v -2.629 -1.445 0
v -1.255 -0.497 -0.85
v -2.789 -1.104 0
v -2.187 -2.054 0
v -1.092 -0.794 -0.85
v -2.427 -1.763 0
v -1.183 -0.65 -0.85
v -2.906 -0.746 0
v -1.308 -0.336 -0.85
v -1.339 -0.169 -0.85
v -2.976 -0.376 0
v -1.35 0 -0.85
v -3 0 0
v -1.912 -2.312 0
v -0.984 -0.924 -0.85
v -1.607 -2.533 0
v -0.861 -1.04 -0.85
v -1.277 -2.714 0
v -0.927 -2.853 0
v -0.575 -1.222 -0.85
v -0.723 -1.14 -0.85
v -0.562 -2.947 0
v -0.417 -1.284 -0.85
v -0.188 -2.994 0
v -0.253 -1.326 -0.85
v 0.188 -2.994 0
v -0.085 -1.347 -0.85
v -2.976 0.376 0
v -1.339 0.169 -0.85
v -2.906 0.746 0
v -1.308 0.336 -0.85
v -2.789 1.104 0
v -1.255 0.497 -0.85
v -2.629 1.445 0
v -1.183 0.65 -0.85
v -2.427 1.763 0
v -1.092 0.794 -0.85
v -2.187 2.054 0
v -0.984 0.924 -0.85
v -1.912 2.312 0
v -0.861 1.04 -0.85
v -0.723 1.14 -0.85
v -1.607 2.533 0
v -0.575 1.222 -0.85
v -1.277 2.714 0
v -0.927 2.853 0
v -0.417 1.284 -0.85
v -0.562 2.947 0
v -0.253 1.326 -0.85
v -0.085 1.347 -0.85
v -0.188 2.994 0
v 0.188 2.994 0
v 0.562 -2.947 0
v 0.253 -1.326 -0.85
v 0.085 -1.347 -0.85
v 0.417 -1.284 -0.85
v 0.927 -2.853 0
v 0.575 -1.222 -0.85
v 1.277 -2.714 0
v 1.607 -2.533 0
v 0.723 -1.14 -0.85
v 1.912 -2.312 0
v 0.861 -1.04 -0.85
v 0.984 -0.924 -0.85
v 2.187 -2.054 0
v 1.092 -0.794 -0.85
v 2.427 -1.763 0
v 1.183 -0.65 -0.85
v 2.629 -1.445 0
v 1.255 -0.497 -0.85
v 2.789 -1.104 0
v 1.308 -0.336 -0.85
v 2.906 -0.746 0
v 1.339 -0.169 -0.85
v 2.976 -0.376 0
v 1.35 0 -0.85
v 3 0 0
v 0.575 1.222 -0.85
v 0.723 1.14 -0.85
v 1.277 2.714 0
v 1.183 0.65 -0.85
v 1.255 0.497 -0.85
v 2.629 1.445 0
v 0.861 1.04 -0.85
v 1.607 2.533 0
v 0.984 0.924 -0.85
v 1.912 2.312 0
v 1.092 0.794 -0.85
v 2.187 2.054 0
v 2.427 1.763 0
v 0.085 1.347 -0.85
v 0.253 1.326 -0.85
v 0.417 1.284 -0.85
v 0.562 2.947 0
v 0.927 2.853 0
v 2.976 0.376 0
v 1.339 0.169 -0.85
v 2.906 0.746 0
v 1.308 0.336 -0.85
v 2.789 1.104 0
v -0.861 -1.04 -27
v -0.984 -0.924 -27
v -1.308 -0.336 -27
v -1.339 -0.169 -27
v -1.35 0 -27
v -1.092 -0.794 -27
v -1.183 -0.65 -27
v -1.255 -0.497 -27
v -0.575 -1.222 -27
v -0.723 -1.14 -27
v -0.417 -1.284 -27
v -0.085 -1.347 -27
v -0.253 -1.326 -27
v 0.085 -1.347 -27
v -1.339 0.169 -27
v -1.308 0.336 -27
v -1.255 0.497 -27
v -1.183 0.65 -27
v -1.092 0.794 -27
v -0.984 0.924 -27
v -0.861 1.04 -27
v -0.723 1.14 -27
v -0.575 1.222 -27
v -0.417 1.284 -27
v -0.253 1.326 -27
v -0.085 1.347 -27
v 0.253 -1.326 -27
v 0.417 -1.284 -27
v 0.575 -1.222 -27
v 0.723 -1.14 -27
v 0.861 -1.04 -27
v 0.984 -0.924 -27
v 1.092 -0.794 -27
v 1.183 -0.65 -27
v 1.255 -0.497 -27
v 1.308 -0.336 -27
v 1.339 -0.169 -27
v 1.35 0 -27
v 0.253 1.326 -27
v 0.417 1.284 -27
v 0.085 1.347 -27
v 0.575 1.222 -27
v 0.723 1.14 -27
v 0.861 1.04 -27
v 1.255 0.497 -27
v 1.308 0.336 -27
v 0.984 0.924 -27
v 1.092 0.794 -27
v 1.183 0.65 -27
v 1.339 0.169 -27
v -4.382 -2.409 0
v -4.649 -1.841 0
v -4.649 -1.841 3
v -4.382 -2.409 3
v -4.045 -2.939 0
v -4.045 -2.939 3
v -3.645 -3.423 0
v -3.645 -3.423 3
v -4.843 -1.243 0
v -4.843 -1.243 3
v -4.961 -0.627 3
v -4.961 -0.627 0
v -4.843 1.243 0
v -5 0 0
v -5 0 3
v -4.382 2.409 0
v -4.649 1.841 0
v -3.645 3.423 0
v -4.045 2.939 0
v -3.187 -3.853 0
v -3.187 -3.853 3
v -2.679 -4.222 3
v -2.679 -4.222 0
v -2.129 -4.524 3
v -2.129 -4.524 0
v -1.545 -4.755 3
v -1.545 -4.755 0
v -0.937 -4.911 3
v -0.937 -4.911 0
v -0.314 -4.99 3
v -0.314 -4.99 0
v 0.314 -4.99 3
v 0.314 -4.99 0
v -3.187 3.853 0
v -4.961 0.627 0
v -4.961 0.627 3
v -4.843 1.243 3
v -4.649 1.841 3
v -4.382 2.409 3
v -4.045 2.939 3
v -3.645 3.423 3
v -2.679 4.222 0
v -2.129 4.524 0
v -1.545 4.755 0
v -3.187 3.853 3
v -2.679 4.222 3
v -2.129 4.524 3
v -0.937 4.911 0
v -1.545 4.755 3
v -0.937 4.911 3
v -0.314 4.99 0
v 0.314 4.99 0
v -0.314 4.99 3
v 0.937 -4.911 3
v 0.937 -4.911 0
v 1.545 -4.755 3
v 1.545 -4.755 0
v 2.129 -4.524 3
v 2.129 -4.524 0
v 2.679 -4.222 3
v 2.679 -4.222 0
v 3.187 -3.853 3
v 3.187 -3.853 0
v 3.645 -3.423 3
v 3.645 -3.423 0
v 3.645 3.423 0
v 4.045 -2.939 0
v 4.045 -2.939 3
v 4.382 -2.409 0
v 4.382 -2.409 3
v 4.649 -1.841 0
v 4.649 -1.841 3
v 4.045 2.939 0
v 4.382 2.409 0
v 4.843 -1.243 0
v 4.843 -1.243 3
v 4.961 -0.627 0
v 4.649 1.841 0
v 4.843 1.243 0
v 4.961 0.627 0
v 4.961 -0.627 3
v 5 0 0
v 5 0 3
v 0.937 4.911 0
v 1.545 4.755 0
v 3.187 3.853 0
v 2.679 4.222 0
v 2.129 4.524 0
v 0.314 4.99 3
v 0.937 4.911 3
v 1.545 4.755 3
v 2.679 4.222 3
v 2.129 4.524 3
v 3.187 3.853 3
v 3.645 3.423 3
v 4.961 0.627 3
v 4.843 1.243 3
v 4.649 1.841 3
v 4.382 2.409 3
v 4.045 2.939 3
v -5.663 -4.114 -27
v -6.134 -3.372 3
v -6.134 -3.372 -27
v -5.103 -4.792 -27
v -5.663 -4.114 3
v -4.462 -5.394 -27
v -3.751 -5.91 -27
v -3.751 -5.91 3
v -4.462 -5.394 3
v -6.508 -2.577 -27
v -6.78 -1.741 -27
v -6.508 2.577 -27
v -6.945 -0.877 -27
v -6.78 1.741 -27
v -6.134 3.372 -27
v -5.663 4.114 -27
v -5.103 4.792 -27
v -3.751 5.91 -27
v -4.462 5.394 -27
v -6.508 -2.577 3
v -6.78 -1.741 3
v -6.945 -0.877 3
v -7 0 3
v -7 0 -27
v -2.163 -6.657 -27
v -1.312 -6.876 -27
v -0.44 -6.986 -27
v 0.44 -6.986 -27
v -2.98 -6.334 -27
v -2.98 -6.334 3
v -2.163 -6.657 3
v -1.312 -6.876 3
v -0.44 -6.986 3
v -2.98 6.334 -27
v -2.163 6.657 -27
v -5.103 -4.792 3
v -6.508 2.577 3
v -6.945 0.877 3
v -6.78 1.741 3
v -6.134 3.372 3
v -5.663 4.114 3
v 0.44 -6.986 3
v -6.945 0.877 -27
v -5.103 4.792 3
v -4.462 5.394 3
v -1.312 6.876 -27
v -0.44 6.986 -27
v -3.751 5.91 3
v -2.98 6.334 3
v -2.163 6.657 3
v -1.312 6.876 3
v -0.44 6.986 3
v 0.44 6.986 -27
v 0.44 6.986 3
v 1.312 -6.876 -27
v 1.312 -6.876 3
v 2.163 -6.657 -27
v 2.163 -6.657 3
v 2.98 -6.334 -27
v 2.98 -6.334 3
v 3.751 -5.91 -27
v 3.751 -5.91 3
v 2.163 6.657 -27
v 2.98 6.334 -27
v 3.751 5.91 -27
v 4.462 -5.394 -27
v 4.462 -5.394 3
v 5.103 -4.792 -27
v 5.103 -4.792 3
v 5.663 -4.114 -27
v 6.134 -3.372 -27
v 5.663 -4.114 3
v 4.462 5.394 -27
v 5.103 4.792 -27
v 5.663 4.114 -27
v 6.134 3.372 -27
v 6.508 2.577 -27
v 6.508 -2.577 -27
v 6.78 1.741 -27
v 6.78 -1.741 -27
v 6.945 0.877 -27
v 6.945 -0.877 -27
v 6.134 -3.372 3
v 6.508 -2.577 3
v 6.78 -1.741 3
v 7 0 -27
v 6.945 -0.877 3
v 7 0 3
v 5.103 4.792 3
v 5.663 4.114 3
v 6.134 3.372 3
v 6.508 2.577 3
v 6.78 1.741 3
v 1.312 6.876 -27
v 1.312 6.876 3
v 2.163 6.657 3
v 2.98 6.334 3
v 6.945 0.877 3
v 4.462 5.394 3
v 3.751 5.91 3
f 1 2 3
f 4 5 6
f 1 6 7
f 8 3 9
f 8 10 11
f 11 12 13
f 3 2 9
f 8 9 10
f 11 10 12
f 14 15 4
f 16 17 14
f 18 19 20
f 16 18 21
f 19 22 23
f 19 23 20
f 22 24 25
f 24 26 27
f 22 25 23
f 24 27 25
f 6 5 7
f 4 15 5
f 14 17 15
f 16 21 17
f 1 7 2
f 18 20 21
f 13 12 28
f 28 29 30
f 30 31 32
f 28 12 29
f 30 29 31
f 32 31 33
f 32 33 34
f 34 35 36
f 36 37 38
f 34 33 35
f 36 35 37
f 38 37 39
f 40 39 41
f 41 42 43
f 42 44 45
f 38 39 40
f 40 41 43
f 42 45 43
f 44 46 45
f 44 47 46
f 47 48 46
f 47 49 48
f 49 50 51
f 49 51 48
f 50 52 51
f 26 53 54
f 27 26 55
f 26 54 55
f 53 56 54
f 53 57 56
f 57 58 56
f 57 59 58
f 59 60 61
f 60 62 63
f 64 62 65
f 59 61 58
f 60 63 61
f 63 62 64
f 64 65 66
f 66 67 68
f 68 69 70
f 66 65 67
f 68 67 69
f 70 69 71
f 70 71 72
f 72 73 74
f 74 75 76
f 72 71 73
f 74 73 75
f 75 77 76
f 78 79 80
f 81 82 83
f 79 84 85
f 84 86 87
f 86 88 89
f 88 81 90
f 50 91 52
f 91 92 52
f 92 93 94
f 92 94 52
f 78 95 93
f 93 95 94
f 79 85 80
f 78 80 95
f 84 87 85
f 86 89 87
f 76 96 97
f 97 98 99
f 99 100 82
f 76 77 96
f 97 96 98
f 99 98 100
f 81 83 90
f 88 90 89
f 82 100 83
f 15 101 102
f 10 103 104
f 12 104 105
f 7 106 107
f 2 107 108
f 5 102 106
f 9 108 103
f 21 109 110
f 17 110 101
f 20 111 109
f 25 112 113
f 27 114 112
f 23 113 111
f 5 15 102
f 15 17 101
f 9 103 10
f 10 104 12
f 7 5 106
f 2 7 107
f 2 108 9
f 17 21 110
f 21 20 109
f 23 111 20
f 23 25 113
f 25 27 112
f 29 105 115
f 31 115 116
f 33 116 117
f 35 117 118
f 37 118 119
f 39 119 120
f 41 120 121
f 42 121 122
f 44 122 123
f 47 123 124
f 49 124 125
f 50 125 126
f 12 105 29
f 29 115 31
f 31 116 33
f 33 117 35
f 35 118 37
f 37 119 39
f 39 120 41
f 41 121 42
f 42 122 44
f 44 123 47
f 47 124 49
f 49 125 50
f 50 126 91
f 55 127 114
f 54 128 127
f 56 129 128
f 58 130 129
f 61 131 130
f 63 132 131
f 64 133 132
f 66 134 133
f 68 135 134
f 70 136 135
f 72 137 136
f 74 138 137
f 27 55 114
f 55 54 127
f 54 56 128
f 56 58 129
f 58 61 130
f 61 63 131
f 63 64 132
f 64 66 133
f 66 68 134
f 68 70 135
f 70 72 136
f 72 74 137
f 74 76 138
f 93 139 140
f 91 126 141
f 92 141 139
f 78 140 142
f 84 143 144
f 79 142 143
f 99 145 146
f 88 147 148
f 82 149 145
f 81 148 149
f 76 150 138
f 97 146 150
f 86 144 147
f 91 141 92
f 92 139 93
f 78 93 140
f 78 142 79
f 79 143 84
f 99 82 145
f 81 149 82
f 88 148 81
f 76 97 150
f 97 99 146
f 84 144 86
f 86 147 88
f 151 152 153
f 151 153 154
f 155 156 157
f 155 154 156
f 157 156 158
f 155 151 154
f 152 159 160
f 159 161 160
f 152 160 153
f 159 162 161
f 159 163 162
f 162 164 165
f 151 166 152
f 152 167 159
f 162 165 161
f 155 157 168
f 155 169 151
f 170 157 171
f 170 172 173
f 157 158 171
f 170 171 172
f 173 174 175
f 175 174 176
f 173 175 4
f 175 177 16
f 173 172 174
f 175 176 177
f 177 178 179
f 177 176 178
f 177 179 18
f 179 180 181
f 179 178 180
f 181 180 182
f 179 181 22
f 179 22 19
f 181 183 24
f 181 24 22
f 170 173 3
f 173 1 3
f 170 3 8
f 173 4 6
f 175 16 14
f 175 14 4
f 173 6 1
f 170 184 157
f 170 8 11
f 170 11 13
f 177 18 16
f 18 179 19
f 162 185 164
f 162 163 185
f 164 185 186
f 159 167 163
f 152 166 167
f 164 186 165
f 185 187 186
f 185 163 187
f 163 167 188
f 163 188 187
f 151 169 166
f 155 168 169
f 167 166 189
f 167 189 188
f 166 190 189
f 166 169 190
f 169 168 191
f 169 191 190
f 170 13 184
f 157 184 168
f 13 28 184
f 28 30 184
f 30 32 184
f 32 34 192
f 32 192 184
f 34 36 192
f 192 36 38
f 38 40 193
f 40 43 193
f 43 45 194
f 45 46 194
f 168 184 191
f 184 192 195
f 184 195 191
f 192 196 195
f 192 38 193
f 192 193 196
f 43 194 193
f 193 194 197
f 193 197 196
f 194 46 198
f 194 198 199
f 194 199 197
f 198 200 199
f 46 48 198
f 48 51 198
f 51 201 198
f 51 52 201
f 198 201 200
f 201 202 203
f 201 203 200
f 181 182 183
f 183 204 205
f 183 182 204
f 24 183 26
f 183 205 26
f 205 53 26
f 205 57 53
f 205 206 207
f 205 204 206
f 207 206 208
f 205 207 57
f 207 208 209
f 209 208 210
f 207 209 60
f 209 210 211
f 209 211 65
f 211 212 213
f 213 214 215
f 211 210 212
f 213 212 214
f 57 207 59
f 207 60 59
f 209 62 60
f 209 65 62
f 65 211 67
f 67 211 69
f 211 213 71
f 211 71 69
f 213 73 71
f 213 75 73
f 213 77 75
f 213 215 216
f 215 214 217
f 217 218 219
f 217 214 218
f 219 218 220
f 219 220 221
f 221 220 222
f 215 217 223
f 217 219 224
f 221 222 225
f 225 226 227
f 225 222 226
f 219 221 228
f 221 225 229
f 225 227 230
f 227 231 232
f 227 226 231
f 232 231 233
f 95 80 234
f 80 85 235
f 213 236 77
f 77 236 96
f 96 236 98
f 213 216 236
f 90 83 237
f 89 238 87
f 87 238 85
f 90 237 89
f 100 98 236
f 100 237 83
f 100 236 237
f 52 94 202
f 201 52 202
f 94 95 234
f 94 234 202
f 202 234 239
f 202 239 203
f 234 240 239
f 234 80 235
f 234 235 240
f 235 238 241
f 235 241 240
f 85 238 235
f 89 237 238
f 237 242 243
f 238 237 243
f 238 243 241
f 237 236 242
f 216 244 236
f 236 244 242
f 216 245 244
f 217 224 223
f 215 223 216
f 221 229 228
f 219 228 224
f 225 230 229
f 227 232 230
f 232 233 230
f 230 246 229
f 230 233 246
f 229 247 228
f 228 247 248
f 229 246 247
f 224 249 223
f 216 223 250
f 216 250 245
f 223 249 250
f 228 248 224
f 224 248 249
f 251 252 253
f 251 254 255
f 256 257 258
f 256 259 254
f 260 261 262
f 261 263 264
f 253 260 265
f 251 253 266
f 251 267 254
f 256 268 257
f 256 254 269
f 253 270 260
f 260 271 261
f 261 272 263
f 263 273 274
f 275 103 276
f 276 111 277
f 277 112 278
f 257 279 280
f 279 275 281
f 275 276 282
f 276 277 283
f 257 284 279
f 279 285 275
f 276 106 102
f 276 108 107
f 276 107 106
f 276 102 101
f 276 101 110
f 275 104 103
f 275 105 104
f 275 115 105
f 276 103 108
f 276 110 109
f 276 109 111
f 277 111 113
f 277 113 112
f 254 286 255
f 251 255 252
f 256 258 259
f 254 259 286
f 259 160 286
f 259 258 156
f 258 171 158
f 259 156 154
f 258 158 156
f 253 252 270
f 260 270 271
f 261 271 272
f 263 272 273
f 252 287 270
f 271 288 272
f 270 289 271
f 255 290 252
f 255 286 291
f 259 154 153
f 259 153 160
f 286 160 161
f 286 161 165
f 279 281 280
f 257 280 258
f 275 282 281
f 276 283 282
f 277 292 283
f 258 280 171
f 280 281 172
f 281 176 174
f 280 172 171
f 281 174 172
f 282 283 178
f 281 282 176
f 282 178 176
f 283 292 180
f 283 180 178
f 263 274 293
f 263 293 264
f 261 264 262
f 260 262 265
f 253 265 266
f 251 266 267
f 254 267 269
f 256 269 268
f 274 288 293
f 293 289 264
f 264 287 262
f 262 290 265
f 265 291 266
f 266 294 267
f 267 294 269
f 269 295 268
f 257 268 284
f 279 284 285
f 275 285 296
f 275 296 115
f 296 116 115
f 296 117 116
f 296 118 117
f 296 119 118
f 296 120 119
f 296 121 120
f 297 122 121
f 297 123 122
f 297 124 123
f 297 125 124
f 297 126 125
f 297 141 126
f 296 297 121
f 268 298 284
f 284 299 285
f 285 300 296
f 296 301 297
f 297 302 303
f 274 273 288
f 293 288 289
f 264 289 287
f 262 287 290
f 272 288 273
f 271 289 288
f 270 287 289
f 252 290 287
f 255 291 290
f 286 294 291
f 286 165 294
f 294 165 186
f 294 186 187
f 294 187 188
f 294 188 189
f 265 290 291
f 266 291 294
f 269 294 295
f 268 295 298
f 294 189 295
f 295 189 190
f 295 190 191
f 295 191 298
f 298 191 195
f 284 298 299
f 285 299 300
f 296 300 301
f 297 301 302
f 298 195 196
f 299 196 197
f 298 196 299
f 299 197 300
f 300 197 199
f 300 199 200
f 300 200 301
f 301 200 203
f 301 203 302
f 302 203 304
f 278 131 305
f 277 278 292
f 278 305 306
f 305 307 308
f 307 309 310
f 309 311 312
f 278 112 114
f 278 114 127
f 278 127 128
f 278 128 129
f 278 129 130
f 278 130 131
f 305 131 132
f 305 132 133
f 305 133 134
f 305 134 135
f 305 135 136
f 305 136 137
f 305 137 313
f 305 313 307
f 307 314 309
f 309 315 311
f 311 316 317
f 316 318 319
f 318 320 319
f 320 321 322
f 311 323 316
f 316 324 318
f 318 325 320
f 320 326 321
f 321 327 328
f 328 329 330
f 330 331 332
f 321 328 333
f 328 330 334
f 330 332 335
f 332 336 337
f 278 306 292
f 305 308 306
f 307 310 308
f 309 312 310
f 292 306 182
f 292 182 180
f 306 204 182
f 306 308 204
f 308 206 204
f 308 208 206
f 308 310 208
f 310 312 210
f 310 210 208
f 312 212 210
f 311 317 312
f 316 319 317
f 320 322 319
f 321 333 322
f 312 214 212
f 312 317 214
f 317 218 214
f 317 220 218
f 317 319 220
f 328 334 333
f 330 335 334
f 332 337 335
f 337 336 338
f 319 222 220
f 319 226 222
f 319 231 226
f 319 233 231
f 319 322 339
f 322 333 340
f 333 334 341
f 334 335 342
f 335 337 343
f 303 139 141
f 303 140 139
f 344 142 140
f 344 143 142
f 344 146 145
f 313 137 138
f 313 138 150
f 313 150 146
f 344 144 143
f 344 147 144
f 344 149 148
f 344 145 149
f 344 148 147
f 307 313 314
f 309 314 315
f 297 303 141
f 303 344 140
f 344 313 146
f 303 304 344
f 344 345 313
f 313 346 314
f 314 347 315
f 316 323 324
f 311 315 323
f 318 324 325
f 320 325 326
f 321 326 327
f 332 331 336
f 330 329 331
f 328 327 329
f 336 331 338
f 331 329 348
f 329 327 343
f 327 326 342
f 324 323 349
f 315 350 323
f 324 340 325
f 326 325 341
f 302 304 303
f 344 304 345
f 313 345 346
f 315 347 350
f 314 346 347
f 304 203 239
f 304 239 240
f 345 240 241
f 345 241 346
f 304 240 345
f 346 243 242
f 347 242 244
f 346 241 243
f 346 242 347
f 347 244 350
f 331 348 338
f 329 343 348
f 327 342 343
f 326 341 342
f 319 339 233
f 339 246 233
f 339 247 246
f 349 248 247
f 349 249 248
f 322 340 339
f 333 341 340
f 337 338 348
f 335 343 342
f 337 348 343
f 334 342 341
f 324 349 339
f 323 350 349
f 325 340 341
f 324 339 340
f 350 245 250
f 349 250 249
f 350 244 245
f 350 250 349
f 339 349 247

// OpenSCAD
$fn = 50;

difference() {
	union() {
		translate(v = [0, 0, -27.0]) {
			cylinder(h = 30, r = 7.0);
		}
	}
	union() {
		translate(v = [0, 0, 0]) {
			rotate(a = [0, 0, 0]) {
				difference() {
					union() {
						translate(v = [0, 0, -30.0]) {
							cylinder(h = 30, r = 1.0);
						}
						translate(v = [0, 0, -0.85]) {
							cylinder(h = 0.85, r1 = 1.35, r2 = 3.0);
						}
						translate(v = [0, 0, -30.0]) {
							cylinder(h = 30, r = 1.35);
						}
						translate(v = [0, 0, -30.0]) {
							cylinder(h = 30, r = 1.0);
						}
					}
					union();
				}
			}
		}
		#cylinder(h = 3, r = 5.0);
	}
}
